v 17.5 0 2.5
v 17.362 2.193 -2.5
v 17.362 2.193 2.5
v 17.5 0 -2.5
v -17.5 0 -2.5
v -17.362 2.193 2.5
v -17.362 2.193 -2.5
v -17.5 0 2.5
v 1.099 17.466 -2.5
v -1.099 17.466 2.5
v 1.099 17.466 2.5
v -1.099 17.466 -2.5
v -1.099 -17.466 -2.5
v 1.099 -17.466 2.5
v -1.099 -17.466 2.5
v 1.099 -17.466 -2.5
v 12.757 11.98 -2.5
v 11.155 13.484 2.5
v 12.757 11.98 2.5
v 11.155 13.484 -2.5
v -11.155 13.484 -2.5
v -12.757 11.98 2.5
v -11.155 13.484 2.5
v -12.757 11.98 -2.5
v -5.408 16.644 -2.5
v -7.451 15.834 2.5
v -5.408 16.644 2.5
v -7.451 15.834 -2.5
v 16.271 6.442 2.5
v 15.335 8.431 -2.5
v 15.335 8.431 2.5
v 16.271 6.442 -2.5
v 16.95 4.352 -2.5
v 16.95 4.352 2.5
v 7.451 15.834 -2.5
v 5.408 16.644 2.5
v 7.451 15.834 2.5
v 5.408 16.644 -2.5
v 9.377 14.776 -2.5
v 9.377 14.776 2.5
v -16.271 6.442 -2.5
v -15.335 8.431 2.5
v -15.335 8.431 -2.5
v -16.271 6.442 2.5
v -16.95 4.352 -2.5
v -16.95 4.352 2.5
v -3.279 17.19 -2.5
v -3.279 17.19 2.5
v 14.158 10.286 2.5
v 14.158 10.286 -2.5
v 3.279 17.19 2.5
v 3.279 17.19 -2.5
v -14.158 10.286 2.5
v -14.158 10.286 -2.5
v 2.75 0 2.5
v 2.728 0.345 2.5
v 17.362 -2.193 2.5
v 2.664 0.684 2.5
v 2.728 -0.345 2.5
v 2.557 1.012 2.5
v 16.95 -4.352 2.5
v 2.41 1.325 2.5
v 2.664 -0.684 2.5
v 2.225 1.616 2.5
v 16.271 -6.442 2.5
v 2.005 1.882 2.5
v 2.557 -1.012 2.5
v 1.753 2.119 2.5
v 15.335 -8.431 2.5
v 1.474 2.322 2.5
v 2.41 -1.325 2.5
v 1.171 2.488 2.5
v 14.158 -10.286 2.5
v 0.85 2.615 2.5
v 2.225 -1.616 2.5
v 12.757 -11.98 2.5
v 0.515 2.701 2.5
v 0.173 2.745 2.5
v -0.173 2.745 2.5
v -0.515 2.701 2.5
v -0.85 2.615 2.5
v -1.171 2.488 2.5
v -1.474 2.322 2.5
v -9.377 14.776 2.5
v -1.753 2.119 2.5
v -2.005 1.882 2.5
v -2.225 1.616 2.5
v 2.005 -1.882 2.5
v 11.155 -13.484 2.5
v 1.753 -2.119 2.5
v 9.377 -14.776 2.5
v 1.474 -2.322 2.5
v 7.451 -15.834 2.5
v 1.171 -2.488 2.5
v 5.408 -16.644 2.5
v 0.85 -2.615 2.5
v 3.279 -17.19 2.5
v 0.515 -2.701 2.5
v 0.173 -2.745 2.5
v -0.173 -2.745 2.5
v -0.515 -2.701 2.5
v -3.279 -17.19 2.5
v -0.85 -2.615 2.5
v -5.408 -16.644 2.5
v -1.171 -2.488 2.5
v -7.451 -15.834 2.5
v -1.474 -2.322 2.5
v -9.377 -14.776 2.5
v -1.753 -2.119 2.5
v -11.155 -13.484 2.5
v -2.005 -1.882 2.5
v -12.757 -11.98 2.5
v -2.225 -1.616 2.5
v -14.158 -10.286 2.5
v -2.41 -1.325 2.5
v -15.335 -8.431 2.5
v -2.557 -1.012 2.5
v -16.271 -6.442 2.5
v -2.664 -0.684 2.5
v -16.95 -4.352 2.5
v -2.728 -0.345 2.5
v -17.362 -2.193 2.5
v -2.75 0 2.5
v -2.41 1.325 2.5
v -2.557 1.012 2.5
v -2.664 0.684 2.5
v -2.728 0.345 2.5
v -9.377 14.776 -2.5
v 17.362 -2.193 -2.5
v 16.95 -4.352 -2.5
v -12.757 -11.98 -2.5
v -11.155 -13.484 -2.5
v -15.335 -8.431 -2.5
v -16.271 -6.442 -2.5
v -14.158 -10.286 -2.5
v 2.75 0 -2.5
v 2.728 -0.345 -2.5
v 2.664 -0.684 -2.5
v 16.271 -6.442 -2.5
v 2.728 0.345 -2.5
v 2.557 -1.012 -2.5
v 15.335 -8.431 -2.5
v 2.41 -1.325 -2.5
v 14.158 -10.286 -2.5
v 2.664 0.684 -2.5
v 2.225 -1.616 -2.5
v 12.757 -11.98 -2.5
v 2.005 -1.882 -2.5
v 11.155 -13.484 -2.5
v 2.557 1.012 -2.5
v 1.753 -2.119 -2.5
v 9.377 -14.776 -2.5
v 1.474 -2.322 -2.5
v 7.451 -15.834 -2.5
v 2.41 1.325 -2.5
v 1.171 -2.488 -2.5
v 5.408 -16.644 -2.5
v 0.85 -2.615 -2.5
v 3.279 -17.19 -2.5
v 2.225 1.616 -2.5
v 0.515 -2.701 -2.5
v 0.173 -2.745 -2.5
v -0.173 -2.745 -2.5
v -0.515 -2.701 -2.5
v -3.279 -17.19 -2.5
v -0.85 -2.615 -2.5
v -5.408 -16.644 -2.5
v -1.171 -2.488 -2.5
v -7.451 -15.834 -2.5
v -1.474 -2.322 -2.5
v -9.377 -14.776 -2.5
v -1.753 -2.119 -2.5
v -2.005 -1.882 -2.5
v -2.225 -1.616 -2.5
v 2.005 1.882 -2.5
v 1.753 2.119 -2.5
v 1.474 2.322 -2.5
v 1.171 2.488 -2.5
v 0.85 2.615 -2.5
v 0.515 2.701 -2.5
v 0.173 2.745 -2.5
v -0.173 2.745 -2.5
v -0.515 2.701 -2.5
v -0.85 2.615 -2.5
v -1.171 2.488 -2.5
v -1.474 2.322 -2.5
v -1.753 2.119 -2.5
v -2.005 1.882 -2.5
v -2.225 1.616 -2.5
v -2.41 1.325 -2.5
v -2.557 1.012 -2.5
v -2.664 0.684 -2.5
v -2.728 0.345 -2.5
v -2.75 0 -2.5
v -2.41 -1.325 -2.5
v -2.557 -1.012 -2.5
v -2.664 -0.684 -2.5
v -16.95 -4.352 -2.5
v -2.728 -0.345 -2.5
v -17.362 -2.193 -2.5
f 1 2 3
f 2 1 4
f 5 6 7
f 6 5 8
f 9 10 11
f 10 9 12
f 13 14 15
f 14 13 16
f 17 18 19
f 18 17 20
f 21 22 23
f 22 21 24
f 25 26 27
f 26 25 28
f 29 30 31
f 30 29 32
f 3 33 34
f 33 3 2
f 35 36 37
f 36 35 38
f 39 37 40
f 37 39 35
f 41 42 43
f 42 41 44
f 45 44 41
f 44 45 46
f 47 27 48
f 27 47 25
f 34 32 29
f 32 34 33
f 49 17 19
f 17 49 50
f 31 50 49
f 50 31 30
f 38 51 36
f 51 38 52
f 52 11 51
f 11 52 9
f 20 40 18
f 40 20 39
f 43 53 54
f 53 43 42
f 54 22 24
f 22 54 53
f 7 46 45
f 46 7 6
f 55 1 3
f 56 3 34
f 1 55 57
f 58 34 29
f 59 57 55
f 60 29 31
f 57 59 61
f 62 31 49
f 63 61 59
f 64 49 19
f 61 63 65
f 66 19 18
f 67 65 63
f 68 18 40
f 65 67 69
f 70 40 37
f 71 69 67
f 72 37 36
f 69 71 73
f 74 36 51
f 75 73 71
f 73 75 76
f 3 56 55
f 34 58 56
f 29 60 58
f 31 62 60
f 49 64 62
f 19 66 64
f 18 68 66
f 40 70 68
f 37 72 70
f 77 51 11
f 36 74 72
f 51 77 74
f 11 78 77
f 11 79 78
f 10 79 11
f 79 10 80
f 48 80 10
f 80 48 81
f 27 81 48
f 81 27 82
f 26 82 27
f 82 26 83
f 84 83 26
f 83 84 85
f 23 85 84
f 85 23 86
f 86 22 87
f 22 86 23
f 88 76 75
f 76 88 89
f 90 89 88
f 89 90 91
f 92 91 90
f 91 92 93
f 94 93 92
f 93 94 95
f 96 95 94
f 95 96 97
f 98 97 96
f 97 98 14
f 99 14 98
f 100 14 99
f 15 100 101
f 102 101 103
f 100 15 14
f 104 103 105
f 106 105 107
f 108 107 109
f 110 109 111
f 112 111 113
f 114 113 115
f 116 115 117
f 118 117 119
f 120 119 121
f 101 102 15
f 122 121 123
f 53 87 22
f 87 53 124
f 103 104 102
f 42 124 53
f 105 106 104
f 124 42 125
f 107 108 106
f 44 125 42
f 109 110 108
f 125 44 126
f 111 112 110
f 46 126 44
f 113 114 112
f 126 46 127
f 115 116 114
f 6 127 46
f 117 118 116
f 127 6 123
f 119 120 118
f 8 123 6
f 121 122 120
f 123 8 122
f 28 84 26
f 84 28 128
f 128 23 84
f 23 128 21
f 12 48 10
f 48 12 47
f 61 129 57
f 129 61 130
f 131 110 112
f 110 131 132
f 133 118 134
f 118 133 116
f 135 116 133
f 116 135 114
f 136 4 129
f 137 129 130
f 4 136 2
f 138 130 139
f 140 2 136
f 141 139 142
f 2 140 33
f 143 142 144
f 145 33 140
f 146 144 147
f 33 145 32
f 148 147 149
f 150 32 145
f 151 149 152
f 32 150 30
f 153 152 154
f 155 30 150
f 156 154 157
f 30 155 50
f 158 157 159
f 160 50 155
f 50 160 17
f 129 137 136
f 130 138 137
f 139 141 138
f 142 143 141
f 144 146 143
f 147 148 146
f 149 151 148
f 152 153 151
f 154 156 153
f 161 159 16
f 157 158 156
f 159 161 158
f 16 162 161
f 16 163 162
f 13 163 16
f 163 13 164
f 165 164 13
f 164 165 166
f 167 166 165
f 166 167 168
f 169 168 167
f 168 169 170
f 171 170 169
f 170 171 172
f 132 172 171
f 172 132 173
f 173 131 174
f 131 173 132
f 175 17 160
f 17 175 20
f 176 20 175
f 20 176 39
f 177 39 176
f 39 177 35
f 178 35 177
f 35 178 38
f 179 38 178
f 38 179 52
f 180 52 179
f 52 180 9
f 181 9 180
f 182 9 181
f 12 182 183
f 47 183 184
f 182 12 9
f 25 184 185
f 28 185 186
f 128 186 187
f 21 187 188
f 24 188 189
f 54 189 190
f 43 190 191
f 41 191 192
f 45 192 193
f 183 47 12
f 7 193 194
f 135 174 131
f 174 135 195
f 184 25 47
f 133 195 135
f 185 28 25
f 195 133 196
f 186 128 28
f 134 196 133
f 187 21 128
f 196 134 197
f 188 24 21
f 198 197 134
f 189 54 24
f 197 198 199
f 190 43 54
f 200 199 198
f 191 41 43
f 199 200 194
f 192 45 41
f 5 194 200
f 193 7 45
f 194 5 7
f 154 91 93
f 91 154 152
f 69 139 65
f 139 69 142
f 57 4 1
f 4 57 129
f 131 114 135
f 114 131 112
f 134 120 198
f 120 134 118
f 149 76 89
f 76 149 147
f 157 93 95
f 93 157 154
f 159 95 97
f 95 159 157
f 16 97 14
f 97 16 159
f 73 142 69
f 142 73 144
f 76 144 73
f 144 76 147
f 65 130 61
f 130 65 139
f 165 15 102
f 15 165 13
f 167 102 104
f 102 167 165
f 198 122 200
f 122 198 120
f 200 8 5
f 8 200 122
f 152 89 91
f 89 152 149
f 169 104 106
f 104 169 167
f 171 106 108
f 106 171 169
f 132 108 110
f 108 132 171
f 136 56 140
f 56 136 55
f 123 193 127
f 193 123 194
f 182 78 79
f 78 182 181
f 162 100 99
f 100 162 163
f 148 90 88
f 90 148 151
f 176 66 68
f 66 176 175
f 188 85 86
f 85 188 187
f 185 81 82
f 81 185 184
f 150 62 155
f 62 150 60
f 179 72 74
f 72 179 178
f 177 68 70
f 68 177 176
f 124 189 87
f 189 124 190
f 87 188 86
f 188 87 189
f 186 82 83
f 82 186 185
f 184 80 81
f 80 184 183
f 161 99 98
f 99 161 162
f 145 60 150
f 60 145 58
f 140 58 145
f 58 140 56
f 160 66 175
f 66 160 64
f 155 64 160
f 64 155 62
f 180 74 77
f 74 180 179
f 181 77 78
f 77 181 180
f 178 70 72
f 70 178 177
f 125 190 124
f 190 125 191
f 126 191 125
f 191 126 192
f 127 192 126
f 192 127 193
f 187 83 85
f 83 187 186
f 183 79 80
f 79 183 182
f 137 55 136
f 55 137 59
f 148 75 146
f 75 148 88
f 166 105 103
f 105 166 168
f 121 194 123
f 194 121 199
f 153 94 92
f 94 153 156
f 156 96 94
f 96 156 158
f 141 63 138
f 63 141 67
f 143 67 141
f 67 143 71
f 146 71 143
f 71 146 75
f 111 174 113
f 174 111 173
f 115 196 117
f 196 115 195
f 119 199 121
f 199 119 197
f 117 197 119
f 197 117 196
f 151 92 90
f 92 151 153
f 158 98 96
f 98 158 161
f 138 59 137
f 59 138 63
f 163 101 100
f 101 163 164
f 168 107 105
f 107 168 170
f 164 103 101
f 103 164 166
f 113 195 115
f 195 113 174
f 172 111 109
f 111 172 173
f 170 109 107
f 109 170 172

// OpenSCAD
$fn = 50;


difference() {
	union() {
		translate(v = [0, 0, -2.5000000000]) {
			cylinder(h = 5, r = 17.5000000000);
		}
	}
	union() {
		translate(v = [0, 0, -100.0000000000]) {
			cylinder(h = 200, r = 2.7500000000);
		}
	}
}
